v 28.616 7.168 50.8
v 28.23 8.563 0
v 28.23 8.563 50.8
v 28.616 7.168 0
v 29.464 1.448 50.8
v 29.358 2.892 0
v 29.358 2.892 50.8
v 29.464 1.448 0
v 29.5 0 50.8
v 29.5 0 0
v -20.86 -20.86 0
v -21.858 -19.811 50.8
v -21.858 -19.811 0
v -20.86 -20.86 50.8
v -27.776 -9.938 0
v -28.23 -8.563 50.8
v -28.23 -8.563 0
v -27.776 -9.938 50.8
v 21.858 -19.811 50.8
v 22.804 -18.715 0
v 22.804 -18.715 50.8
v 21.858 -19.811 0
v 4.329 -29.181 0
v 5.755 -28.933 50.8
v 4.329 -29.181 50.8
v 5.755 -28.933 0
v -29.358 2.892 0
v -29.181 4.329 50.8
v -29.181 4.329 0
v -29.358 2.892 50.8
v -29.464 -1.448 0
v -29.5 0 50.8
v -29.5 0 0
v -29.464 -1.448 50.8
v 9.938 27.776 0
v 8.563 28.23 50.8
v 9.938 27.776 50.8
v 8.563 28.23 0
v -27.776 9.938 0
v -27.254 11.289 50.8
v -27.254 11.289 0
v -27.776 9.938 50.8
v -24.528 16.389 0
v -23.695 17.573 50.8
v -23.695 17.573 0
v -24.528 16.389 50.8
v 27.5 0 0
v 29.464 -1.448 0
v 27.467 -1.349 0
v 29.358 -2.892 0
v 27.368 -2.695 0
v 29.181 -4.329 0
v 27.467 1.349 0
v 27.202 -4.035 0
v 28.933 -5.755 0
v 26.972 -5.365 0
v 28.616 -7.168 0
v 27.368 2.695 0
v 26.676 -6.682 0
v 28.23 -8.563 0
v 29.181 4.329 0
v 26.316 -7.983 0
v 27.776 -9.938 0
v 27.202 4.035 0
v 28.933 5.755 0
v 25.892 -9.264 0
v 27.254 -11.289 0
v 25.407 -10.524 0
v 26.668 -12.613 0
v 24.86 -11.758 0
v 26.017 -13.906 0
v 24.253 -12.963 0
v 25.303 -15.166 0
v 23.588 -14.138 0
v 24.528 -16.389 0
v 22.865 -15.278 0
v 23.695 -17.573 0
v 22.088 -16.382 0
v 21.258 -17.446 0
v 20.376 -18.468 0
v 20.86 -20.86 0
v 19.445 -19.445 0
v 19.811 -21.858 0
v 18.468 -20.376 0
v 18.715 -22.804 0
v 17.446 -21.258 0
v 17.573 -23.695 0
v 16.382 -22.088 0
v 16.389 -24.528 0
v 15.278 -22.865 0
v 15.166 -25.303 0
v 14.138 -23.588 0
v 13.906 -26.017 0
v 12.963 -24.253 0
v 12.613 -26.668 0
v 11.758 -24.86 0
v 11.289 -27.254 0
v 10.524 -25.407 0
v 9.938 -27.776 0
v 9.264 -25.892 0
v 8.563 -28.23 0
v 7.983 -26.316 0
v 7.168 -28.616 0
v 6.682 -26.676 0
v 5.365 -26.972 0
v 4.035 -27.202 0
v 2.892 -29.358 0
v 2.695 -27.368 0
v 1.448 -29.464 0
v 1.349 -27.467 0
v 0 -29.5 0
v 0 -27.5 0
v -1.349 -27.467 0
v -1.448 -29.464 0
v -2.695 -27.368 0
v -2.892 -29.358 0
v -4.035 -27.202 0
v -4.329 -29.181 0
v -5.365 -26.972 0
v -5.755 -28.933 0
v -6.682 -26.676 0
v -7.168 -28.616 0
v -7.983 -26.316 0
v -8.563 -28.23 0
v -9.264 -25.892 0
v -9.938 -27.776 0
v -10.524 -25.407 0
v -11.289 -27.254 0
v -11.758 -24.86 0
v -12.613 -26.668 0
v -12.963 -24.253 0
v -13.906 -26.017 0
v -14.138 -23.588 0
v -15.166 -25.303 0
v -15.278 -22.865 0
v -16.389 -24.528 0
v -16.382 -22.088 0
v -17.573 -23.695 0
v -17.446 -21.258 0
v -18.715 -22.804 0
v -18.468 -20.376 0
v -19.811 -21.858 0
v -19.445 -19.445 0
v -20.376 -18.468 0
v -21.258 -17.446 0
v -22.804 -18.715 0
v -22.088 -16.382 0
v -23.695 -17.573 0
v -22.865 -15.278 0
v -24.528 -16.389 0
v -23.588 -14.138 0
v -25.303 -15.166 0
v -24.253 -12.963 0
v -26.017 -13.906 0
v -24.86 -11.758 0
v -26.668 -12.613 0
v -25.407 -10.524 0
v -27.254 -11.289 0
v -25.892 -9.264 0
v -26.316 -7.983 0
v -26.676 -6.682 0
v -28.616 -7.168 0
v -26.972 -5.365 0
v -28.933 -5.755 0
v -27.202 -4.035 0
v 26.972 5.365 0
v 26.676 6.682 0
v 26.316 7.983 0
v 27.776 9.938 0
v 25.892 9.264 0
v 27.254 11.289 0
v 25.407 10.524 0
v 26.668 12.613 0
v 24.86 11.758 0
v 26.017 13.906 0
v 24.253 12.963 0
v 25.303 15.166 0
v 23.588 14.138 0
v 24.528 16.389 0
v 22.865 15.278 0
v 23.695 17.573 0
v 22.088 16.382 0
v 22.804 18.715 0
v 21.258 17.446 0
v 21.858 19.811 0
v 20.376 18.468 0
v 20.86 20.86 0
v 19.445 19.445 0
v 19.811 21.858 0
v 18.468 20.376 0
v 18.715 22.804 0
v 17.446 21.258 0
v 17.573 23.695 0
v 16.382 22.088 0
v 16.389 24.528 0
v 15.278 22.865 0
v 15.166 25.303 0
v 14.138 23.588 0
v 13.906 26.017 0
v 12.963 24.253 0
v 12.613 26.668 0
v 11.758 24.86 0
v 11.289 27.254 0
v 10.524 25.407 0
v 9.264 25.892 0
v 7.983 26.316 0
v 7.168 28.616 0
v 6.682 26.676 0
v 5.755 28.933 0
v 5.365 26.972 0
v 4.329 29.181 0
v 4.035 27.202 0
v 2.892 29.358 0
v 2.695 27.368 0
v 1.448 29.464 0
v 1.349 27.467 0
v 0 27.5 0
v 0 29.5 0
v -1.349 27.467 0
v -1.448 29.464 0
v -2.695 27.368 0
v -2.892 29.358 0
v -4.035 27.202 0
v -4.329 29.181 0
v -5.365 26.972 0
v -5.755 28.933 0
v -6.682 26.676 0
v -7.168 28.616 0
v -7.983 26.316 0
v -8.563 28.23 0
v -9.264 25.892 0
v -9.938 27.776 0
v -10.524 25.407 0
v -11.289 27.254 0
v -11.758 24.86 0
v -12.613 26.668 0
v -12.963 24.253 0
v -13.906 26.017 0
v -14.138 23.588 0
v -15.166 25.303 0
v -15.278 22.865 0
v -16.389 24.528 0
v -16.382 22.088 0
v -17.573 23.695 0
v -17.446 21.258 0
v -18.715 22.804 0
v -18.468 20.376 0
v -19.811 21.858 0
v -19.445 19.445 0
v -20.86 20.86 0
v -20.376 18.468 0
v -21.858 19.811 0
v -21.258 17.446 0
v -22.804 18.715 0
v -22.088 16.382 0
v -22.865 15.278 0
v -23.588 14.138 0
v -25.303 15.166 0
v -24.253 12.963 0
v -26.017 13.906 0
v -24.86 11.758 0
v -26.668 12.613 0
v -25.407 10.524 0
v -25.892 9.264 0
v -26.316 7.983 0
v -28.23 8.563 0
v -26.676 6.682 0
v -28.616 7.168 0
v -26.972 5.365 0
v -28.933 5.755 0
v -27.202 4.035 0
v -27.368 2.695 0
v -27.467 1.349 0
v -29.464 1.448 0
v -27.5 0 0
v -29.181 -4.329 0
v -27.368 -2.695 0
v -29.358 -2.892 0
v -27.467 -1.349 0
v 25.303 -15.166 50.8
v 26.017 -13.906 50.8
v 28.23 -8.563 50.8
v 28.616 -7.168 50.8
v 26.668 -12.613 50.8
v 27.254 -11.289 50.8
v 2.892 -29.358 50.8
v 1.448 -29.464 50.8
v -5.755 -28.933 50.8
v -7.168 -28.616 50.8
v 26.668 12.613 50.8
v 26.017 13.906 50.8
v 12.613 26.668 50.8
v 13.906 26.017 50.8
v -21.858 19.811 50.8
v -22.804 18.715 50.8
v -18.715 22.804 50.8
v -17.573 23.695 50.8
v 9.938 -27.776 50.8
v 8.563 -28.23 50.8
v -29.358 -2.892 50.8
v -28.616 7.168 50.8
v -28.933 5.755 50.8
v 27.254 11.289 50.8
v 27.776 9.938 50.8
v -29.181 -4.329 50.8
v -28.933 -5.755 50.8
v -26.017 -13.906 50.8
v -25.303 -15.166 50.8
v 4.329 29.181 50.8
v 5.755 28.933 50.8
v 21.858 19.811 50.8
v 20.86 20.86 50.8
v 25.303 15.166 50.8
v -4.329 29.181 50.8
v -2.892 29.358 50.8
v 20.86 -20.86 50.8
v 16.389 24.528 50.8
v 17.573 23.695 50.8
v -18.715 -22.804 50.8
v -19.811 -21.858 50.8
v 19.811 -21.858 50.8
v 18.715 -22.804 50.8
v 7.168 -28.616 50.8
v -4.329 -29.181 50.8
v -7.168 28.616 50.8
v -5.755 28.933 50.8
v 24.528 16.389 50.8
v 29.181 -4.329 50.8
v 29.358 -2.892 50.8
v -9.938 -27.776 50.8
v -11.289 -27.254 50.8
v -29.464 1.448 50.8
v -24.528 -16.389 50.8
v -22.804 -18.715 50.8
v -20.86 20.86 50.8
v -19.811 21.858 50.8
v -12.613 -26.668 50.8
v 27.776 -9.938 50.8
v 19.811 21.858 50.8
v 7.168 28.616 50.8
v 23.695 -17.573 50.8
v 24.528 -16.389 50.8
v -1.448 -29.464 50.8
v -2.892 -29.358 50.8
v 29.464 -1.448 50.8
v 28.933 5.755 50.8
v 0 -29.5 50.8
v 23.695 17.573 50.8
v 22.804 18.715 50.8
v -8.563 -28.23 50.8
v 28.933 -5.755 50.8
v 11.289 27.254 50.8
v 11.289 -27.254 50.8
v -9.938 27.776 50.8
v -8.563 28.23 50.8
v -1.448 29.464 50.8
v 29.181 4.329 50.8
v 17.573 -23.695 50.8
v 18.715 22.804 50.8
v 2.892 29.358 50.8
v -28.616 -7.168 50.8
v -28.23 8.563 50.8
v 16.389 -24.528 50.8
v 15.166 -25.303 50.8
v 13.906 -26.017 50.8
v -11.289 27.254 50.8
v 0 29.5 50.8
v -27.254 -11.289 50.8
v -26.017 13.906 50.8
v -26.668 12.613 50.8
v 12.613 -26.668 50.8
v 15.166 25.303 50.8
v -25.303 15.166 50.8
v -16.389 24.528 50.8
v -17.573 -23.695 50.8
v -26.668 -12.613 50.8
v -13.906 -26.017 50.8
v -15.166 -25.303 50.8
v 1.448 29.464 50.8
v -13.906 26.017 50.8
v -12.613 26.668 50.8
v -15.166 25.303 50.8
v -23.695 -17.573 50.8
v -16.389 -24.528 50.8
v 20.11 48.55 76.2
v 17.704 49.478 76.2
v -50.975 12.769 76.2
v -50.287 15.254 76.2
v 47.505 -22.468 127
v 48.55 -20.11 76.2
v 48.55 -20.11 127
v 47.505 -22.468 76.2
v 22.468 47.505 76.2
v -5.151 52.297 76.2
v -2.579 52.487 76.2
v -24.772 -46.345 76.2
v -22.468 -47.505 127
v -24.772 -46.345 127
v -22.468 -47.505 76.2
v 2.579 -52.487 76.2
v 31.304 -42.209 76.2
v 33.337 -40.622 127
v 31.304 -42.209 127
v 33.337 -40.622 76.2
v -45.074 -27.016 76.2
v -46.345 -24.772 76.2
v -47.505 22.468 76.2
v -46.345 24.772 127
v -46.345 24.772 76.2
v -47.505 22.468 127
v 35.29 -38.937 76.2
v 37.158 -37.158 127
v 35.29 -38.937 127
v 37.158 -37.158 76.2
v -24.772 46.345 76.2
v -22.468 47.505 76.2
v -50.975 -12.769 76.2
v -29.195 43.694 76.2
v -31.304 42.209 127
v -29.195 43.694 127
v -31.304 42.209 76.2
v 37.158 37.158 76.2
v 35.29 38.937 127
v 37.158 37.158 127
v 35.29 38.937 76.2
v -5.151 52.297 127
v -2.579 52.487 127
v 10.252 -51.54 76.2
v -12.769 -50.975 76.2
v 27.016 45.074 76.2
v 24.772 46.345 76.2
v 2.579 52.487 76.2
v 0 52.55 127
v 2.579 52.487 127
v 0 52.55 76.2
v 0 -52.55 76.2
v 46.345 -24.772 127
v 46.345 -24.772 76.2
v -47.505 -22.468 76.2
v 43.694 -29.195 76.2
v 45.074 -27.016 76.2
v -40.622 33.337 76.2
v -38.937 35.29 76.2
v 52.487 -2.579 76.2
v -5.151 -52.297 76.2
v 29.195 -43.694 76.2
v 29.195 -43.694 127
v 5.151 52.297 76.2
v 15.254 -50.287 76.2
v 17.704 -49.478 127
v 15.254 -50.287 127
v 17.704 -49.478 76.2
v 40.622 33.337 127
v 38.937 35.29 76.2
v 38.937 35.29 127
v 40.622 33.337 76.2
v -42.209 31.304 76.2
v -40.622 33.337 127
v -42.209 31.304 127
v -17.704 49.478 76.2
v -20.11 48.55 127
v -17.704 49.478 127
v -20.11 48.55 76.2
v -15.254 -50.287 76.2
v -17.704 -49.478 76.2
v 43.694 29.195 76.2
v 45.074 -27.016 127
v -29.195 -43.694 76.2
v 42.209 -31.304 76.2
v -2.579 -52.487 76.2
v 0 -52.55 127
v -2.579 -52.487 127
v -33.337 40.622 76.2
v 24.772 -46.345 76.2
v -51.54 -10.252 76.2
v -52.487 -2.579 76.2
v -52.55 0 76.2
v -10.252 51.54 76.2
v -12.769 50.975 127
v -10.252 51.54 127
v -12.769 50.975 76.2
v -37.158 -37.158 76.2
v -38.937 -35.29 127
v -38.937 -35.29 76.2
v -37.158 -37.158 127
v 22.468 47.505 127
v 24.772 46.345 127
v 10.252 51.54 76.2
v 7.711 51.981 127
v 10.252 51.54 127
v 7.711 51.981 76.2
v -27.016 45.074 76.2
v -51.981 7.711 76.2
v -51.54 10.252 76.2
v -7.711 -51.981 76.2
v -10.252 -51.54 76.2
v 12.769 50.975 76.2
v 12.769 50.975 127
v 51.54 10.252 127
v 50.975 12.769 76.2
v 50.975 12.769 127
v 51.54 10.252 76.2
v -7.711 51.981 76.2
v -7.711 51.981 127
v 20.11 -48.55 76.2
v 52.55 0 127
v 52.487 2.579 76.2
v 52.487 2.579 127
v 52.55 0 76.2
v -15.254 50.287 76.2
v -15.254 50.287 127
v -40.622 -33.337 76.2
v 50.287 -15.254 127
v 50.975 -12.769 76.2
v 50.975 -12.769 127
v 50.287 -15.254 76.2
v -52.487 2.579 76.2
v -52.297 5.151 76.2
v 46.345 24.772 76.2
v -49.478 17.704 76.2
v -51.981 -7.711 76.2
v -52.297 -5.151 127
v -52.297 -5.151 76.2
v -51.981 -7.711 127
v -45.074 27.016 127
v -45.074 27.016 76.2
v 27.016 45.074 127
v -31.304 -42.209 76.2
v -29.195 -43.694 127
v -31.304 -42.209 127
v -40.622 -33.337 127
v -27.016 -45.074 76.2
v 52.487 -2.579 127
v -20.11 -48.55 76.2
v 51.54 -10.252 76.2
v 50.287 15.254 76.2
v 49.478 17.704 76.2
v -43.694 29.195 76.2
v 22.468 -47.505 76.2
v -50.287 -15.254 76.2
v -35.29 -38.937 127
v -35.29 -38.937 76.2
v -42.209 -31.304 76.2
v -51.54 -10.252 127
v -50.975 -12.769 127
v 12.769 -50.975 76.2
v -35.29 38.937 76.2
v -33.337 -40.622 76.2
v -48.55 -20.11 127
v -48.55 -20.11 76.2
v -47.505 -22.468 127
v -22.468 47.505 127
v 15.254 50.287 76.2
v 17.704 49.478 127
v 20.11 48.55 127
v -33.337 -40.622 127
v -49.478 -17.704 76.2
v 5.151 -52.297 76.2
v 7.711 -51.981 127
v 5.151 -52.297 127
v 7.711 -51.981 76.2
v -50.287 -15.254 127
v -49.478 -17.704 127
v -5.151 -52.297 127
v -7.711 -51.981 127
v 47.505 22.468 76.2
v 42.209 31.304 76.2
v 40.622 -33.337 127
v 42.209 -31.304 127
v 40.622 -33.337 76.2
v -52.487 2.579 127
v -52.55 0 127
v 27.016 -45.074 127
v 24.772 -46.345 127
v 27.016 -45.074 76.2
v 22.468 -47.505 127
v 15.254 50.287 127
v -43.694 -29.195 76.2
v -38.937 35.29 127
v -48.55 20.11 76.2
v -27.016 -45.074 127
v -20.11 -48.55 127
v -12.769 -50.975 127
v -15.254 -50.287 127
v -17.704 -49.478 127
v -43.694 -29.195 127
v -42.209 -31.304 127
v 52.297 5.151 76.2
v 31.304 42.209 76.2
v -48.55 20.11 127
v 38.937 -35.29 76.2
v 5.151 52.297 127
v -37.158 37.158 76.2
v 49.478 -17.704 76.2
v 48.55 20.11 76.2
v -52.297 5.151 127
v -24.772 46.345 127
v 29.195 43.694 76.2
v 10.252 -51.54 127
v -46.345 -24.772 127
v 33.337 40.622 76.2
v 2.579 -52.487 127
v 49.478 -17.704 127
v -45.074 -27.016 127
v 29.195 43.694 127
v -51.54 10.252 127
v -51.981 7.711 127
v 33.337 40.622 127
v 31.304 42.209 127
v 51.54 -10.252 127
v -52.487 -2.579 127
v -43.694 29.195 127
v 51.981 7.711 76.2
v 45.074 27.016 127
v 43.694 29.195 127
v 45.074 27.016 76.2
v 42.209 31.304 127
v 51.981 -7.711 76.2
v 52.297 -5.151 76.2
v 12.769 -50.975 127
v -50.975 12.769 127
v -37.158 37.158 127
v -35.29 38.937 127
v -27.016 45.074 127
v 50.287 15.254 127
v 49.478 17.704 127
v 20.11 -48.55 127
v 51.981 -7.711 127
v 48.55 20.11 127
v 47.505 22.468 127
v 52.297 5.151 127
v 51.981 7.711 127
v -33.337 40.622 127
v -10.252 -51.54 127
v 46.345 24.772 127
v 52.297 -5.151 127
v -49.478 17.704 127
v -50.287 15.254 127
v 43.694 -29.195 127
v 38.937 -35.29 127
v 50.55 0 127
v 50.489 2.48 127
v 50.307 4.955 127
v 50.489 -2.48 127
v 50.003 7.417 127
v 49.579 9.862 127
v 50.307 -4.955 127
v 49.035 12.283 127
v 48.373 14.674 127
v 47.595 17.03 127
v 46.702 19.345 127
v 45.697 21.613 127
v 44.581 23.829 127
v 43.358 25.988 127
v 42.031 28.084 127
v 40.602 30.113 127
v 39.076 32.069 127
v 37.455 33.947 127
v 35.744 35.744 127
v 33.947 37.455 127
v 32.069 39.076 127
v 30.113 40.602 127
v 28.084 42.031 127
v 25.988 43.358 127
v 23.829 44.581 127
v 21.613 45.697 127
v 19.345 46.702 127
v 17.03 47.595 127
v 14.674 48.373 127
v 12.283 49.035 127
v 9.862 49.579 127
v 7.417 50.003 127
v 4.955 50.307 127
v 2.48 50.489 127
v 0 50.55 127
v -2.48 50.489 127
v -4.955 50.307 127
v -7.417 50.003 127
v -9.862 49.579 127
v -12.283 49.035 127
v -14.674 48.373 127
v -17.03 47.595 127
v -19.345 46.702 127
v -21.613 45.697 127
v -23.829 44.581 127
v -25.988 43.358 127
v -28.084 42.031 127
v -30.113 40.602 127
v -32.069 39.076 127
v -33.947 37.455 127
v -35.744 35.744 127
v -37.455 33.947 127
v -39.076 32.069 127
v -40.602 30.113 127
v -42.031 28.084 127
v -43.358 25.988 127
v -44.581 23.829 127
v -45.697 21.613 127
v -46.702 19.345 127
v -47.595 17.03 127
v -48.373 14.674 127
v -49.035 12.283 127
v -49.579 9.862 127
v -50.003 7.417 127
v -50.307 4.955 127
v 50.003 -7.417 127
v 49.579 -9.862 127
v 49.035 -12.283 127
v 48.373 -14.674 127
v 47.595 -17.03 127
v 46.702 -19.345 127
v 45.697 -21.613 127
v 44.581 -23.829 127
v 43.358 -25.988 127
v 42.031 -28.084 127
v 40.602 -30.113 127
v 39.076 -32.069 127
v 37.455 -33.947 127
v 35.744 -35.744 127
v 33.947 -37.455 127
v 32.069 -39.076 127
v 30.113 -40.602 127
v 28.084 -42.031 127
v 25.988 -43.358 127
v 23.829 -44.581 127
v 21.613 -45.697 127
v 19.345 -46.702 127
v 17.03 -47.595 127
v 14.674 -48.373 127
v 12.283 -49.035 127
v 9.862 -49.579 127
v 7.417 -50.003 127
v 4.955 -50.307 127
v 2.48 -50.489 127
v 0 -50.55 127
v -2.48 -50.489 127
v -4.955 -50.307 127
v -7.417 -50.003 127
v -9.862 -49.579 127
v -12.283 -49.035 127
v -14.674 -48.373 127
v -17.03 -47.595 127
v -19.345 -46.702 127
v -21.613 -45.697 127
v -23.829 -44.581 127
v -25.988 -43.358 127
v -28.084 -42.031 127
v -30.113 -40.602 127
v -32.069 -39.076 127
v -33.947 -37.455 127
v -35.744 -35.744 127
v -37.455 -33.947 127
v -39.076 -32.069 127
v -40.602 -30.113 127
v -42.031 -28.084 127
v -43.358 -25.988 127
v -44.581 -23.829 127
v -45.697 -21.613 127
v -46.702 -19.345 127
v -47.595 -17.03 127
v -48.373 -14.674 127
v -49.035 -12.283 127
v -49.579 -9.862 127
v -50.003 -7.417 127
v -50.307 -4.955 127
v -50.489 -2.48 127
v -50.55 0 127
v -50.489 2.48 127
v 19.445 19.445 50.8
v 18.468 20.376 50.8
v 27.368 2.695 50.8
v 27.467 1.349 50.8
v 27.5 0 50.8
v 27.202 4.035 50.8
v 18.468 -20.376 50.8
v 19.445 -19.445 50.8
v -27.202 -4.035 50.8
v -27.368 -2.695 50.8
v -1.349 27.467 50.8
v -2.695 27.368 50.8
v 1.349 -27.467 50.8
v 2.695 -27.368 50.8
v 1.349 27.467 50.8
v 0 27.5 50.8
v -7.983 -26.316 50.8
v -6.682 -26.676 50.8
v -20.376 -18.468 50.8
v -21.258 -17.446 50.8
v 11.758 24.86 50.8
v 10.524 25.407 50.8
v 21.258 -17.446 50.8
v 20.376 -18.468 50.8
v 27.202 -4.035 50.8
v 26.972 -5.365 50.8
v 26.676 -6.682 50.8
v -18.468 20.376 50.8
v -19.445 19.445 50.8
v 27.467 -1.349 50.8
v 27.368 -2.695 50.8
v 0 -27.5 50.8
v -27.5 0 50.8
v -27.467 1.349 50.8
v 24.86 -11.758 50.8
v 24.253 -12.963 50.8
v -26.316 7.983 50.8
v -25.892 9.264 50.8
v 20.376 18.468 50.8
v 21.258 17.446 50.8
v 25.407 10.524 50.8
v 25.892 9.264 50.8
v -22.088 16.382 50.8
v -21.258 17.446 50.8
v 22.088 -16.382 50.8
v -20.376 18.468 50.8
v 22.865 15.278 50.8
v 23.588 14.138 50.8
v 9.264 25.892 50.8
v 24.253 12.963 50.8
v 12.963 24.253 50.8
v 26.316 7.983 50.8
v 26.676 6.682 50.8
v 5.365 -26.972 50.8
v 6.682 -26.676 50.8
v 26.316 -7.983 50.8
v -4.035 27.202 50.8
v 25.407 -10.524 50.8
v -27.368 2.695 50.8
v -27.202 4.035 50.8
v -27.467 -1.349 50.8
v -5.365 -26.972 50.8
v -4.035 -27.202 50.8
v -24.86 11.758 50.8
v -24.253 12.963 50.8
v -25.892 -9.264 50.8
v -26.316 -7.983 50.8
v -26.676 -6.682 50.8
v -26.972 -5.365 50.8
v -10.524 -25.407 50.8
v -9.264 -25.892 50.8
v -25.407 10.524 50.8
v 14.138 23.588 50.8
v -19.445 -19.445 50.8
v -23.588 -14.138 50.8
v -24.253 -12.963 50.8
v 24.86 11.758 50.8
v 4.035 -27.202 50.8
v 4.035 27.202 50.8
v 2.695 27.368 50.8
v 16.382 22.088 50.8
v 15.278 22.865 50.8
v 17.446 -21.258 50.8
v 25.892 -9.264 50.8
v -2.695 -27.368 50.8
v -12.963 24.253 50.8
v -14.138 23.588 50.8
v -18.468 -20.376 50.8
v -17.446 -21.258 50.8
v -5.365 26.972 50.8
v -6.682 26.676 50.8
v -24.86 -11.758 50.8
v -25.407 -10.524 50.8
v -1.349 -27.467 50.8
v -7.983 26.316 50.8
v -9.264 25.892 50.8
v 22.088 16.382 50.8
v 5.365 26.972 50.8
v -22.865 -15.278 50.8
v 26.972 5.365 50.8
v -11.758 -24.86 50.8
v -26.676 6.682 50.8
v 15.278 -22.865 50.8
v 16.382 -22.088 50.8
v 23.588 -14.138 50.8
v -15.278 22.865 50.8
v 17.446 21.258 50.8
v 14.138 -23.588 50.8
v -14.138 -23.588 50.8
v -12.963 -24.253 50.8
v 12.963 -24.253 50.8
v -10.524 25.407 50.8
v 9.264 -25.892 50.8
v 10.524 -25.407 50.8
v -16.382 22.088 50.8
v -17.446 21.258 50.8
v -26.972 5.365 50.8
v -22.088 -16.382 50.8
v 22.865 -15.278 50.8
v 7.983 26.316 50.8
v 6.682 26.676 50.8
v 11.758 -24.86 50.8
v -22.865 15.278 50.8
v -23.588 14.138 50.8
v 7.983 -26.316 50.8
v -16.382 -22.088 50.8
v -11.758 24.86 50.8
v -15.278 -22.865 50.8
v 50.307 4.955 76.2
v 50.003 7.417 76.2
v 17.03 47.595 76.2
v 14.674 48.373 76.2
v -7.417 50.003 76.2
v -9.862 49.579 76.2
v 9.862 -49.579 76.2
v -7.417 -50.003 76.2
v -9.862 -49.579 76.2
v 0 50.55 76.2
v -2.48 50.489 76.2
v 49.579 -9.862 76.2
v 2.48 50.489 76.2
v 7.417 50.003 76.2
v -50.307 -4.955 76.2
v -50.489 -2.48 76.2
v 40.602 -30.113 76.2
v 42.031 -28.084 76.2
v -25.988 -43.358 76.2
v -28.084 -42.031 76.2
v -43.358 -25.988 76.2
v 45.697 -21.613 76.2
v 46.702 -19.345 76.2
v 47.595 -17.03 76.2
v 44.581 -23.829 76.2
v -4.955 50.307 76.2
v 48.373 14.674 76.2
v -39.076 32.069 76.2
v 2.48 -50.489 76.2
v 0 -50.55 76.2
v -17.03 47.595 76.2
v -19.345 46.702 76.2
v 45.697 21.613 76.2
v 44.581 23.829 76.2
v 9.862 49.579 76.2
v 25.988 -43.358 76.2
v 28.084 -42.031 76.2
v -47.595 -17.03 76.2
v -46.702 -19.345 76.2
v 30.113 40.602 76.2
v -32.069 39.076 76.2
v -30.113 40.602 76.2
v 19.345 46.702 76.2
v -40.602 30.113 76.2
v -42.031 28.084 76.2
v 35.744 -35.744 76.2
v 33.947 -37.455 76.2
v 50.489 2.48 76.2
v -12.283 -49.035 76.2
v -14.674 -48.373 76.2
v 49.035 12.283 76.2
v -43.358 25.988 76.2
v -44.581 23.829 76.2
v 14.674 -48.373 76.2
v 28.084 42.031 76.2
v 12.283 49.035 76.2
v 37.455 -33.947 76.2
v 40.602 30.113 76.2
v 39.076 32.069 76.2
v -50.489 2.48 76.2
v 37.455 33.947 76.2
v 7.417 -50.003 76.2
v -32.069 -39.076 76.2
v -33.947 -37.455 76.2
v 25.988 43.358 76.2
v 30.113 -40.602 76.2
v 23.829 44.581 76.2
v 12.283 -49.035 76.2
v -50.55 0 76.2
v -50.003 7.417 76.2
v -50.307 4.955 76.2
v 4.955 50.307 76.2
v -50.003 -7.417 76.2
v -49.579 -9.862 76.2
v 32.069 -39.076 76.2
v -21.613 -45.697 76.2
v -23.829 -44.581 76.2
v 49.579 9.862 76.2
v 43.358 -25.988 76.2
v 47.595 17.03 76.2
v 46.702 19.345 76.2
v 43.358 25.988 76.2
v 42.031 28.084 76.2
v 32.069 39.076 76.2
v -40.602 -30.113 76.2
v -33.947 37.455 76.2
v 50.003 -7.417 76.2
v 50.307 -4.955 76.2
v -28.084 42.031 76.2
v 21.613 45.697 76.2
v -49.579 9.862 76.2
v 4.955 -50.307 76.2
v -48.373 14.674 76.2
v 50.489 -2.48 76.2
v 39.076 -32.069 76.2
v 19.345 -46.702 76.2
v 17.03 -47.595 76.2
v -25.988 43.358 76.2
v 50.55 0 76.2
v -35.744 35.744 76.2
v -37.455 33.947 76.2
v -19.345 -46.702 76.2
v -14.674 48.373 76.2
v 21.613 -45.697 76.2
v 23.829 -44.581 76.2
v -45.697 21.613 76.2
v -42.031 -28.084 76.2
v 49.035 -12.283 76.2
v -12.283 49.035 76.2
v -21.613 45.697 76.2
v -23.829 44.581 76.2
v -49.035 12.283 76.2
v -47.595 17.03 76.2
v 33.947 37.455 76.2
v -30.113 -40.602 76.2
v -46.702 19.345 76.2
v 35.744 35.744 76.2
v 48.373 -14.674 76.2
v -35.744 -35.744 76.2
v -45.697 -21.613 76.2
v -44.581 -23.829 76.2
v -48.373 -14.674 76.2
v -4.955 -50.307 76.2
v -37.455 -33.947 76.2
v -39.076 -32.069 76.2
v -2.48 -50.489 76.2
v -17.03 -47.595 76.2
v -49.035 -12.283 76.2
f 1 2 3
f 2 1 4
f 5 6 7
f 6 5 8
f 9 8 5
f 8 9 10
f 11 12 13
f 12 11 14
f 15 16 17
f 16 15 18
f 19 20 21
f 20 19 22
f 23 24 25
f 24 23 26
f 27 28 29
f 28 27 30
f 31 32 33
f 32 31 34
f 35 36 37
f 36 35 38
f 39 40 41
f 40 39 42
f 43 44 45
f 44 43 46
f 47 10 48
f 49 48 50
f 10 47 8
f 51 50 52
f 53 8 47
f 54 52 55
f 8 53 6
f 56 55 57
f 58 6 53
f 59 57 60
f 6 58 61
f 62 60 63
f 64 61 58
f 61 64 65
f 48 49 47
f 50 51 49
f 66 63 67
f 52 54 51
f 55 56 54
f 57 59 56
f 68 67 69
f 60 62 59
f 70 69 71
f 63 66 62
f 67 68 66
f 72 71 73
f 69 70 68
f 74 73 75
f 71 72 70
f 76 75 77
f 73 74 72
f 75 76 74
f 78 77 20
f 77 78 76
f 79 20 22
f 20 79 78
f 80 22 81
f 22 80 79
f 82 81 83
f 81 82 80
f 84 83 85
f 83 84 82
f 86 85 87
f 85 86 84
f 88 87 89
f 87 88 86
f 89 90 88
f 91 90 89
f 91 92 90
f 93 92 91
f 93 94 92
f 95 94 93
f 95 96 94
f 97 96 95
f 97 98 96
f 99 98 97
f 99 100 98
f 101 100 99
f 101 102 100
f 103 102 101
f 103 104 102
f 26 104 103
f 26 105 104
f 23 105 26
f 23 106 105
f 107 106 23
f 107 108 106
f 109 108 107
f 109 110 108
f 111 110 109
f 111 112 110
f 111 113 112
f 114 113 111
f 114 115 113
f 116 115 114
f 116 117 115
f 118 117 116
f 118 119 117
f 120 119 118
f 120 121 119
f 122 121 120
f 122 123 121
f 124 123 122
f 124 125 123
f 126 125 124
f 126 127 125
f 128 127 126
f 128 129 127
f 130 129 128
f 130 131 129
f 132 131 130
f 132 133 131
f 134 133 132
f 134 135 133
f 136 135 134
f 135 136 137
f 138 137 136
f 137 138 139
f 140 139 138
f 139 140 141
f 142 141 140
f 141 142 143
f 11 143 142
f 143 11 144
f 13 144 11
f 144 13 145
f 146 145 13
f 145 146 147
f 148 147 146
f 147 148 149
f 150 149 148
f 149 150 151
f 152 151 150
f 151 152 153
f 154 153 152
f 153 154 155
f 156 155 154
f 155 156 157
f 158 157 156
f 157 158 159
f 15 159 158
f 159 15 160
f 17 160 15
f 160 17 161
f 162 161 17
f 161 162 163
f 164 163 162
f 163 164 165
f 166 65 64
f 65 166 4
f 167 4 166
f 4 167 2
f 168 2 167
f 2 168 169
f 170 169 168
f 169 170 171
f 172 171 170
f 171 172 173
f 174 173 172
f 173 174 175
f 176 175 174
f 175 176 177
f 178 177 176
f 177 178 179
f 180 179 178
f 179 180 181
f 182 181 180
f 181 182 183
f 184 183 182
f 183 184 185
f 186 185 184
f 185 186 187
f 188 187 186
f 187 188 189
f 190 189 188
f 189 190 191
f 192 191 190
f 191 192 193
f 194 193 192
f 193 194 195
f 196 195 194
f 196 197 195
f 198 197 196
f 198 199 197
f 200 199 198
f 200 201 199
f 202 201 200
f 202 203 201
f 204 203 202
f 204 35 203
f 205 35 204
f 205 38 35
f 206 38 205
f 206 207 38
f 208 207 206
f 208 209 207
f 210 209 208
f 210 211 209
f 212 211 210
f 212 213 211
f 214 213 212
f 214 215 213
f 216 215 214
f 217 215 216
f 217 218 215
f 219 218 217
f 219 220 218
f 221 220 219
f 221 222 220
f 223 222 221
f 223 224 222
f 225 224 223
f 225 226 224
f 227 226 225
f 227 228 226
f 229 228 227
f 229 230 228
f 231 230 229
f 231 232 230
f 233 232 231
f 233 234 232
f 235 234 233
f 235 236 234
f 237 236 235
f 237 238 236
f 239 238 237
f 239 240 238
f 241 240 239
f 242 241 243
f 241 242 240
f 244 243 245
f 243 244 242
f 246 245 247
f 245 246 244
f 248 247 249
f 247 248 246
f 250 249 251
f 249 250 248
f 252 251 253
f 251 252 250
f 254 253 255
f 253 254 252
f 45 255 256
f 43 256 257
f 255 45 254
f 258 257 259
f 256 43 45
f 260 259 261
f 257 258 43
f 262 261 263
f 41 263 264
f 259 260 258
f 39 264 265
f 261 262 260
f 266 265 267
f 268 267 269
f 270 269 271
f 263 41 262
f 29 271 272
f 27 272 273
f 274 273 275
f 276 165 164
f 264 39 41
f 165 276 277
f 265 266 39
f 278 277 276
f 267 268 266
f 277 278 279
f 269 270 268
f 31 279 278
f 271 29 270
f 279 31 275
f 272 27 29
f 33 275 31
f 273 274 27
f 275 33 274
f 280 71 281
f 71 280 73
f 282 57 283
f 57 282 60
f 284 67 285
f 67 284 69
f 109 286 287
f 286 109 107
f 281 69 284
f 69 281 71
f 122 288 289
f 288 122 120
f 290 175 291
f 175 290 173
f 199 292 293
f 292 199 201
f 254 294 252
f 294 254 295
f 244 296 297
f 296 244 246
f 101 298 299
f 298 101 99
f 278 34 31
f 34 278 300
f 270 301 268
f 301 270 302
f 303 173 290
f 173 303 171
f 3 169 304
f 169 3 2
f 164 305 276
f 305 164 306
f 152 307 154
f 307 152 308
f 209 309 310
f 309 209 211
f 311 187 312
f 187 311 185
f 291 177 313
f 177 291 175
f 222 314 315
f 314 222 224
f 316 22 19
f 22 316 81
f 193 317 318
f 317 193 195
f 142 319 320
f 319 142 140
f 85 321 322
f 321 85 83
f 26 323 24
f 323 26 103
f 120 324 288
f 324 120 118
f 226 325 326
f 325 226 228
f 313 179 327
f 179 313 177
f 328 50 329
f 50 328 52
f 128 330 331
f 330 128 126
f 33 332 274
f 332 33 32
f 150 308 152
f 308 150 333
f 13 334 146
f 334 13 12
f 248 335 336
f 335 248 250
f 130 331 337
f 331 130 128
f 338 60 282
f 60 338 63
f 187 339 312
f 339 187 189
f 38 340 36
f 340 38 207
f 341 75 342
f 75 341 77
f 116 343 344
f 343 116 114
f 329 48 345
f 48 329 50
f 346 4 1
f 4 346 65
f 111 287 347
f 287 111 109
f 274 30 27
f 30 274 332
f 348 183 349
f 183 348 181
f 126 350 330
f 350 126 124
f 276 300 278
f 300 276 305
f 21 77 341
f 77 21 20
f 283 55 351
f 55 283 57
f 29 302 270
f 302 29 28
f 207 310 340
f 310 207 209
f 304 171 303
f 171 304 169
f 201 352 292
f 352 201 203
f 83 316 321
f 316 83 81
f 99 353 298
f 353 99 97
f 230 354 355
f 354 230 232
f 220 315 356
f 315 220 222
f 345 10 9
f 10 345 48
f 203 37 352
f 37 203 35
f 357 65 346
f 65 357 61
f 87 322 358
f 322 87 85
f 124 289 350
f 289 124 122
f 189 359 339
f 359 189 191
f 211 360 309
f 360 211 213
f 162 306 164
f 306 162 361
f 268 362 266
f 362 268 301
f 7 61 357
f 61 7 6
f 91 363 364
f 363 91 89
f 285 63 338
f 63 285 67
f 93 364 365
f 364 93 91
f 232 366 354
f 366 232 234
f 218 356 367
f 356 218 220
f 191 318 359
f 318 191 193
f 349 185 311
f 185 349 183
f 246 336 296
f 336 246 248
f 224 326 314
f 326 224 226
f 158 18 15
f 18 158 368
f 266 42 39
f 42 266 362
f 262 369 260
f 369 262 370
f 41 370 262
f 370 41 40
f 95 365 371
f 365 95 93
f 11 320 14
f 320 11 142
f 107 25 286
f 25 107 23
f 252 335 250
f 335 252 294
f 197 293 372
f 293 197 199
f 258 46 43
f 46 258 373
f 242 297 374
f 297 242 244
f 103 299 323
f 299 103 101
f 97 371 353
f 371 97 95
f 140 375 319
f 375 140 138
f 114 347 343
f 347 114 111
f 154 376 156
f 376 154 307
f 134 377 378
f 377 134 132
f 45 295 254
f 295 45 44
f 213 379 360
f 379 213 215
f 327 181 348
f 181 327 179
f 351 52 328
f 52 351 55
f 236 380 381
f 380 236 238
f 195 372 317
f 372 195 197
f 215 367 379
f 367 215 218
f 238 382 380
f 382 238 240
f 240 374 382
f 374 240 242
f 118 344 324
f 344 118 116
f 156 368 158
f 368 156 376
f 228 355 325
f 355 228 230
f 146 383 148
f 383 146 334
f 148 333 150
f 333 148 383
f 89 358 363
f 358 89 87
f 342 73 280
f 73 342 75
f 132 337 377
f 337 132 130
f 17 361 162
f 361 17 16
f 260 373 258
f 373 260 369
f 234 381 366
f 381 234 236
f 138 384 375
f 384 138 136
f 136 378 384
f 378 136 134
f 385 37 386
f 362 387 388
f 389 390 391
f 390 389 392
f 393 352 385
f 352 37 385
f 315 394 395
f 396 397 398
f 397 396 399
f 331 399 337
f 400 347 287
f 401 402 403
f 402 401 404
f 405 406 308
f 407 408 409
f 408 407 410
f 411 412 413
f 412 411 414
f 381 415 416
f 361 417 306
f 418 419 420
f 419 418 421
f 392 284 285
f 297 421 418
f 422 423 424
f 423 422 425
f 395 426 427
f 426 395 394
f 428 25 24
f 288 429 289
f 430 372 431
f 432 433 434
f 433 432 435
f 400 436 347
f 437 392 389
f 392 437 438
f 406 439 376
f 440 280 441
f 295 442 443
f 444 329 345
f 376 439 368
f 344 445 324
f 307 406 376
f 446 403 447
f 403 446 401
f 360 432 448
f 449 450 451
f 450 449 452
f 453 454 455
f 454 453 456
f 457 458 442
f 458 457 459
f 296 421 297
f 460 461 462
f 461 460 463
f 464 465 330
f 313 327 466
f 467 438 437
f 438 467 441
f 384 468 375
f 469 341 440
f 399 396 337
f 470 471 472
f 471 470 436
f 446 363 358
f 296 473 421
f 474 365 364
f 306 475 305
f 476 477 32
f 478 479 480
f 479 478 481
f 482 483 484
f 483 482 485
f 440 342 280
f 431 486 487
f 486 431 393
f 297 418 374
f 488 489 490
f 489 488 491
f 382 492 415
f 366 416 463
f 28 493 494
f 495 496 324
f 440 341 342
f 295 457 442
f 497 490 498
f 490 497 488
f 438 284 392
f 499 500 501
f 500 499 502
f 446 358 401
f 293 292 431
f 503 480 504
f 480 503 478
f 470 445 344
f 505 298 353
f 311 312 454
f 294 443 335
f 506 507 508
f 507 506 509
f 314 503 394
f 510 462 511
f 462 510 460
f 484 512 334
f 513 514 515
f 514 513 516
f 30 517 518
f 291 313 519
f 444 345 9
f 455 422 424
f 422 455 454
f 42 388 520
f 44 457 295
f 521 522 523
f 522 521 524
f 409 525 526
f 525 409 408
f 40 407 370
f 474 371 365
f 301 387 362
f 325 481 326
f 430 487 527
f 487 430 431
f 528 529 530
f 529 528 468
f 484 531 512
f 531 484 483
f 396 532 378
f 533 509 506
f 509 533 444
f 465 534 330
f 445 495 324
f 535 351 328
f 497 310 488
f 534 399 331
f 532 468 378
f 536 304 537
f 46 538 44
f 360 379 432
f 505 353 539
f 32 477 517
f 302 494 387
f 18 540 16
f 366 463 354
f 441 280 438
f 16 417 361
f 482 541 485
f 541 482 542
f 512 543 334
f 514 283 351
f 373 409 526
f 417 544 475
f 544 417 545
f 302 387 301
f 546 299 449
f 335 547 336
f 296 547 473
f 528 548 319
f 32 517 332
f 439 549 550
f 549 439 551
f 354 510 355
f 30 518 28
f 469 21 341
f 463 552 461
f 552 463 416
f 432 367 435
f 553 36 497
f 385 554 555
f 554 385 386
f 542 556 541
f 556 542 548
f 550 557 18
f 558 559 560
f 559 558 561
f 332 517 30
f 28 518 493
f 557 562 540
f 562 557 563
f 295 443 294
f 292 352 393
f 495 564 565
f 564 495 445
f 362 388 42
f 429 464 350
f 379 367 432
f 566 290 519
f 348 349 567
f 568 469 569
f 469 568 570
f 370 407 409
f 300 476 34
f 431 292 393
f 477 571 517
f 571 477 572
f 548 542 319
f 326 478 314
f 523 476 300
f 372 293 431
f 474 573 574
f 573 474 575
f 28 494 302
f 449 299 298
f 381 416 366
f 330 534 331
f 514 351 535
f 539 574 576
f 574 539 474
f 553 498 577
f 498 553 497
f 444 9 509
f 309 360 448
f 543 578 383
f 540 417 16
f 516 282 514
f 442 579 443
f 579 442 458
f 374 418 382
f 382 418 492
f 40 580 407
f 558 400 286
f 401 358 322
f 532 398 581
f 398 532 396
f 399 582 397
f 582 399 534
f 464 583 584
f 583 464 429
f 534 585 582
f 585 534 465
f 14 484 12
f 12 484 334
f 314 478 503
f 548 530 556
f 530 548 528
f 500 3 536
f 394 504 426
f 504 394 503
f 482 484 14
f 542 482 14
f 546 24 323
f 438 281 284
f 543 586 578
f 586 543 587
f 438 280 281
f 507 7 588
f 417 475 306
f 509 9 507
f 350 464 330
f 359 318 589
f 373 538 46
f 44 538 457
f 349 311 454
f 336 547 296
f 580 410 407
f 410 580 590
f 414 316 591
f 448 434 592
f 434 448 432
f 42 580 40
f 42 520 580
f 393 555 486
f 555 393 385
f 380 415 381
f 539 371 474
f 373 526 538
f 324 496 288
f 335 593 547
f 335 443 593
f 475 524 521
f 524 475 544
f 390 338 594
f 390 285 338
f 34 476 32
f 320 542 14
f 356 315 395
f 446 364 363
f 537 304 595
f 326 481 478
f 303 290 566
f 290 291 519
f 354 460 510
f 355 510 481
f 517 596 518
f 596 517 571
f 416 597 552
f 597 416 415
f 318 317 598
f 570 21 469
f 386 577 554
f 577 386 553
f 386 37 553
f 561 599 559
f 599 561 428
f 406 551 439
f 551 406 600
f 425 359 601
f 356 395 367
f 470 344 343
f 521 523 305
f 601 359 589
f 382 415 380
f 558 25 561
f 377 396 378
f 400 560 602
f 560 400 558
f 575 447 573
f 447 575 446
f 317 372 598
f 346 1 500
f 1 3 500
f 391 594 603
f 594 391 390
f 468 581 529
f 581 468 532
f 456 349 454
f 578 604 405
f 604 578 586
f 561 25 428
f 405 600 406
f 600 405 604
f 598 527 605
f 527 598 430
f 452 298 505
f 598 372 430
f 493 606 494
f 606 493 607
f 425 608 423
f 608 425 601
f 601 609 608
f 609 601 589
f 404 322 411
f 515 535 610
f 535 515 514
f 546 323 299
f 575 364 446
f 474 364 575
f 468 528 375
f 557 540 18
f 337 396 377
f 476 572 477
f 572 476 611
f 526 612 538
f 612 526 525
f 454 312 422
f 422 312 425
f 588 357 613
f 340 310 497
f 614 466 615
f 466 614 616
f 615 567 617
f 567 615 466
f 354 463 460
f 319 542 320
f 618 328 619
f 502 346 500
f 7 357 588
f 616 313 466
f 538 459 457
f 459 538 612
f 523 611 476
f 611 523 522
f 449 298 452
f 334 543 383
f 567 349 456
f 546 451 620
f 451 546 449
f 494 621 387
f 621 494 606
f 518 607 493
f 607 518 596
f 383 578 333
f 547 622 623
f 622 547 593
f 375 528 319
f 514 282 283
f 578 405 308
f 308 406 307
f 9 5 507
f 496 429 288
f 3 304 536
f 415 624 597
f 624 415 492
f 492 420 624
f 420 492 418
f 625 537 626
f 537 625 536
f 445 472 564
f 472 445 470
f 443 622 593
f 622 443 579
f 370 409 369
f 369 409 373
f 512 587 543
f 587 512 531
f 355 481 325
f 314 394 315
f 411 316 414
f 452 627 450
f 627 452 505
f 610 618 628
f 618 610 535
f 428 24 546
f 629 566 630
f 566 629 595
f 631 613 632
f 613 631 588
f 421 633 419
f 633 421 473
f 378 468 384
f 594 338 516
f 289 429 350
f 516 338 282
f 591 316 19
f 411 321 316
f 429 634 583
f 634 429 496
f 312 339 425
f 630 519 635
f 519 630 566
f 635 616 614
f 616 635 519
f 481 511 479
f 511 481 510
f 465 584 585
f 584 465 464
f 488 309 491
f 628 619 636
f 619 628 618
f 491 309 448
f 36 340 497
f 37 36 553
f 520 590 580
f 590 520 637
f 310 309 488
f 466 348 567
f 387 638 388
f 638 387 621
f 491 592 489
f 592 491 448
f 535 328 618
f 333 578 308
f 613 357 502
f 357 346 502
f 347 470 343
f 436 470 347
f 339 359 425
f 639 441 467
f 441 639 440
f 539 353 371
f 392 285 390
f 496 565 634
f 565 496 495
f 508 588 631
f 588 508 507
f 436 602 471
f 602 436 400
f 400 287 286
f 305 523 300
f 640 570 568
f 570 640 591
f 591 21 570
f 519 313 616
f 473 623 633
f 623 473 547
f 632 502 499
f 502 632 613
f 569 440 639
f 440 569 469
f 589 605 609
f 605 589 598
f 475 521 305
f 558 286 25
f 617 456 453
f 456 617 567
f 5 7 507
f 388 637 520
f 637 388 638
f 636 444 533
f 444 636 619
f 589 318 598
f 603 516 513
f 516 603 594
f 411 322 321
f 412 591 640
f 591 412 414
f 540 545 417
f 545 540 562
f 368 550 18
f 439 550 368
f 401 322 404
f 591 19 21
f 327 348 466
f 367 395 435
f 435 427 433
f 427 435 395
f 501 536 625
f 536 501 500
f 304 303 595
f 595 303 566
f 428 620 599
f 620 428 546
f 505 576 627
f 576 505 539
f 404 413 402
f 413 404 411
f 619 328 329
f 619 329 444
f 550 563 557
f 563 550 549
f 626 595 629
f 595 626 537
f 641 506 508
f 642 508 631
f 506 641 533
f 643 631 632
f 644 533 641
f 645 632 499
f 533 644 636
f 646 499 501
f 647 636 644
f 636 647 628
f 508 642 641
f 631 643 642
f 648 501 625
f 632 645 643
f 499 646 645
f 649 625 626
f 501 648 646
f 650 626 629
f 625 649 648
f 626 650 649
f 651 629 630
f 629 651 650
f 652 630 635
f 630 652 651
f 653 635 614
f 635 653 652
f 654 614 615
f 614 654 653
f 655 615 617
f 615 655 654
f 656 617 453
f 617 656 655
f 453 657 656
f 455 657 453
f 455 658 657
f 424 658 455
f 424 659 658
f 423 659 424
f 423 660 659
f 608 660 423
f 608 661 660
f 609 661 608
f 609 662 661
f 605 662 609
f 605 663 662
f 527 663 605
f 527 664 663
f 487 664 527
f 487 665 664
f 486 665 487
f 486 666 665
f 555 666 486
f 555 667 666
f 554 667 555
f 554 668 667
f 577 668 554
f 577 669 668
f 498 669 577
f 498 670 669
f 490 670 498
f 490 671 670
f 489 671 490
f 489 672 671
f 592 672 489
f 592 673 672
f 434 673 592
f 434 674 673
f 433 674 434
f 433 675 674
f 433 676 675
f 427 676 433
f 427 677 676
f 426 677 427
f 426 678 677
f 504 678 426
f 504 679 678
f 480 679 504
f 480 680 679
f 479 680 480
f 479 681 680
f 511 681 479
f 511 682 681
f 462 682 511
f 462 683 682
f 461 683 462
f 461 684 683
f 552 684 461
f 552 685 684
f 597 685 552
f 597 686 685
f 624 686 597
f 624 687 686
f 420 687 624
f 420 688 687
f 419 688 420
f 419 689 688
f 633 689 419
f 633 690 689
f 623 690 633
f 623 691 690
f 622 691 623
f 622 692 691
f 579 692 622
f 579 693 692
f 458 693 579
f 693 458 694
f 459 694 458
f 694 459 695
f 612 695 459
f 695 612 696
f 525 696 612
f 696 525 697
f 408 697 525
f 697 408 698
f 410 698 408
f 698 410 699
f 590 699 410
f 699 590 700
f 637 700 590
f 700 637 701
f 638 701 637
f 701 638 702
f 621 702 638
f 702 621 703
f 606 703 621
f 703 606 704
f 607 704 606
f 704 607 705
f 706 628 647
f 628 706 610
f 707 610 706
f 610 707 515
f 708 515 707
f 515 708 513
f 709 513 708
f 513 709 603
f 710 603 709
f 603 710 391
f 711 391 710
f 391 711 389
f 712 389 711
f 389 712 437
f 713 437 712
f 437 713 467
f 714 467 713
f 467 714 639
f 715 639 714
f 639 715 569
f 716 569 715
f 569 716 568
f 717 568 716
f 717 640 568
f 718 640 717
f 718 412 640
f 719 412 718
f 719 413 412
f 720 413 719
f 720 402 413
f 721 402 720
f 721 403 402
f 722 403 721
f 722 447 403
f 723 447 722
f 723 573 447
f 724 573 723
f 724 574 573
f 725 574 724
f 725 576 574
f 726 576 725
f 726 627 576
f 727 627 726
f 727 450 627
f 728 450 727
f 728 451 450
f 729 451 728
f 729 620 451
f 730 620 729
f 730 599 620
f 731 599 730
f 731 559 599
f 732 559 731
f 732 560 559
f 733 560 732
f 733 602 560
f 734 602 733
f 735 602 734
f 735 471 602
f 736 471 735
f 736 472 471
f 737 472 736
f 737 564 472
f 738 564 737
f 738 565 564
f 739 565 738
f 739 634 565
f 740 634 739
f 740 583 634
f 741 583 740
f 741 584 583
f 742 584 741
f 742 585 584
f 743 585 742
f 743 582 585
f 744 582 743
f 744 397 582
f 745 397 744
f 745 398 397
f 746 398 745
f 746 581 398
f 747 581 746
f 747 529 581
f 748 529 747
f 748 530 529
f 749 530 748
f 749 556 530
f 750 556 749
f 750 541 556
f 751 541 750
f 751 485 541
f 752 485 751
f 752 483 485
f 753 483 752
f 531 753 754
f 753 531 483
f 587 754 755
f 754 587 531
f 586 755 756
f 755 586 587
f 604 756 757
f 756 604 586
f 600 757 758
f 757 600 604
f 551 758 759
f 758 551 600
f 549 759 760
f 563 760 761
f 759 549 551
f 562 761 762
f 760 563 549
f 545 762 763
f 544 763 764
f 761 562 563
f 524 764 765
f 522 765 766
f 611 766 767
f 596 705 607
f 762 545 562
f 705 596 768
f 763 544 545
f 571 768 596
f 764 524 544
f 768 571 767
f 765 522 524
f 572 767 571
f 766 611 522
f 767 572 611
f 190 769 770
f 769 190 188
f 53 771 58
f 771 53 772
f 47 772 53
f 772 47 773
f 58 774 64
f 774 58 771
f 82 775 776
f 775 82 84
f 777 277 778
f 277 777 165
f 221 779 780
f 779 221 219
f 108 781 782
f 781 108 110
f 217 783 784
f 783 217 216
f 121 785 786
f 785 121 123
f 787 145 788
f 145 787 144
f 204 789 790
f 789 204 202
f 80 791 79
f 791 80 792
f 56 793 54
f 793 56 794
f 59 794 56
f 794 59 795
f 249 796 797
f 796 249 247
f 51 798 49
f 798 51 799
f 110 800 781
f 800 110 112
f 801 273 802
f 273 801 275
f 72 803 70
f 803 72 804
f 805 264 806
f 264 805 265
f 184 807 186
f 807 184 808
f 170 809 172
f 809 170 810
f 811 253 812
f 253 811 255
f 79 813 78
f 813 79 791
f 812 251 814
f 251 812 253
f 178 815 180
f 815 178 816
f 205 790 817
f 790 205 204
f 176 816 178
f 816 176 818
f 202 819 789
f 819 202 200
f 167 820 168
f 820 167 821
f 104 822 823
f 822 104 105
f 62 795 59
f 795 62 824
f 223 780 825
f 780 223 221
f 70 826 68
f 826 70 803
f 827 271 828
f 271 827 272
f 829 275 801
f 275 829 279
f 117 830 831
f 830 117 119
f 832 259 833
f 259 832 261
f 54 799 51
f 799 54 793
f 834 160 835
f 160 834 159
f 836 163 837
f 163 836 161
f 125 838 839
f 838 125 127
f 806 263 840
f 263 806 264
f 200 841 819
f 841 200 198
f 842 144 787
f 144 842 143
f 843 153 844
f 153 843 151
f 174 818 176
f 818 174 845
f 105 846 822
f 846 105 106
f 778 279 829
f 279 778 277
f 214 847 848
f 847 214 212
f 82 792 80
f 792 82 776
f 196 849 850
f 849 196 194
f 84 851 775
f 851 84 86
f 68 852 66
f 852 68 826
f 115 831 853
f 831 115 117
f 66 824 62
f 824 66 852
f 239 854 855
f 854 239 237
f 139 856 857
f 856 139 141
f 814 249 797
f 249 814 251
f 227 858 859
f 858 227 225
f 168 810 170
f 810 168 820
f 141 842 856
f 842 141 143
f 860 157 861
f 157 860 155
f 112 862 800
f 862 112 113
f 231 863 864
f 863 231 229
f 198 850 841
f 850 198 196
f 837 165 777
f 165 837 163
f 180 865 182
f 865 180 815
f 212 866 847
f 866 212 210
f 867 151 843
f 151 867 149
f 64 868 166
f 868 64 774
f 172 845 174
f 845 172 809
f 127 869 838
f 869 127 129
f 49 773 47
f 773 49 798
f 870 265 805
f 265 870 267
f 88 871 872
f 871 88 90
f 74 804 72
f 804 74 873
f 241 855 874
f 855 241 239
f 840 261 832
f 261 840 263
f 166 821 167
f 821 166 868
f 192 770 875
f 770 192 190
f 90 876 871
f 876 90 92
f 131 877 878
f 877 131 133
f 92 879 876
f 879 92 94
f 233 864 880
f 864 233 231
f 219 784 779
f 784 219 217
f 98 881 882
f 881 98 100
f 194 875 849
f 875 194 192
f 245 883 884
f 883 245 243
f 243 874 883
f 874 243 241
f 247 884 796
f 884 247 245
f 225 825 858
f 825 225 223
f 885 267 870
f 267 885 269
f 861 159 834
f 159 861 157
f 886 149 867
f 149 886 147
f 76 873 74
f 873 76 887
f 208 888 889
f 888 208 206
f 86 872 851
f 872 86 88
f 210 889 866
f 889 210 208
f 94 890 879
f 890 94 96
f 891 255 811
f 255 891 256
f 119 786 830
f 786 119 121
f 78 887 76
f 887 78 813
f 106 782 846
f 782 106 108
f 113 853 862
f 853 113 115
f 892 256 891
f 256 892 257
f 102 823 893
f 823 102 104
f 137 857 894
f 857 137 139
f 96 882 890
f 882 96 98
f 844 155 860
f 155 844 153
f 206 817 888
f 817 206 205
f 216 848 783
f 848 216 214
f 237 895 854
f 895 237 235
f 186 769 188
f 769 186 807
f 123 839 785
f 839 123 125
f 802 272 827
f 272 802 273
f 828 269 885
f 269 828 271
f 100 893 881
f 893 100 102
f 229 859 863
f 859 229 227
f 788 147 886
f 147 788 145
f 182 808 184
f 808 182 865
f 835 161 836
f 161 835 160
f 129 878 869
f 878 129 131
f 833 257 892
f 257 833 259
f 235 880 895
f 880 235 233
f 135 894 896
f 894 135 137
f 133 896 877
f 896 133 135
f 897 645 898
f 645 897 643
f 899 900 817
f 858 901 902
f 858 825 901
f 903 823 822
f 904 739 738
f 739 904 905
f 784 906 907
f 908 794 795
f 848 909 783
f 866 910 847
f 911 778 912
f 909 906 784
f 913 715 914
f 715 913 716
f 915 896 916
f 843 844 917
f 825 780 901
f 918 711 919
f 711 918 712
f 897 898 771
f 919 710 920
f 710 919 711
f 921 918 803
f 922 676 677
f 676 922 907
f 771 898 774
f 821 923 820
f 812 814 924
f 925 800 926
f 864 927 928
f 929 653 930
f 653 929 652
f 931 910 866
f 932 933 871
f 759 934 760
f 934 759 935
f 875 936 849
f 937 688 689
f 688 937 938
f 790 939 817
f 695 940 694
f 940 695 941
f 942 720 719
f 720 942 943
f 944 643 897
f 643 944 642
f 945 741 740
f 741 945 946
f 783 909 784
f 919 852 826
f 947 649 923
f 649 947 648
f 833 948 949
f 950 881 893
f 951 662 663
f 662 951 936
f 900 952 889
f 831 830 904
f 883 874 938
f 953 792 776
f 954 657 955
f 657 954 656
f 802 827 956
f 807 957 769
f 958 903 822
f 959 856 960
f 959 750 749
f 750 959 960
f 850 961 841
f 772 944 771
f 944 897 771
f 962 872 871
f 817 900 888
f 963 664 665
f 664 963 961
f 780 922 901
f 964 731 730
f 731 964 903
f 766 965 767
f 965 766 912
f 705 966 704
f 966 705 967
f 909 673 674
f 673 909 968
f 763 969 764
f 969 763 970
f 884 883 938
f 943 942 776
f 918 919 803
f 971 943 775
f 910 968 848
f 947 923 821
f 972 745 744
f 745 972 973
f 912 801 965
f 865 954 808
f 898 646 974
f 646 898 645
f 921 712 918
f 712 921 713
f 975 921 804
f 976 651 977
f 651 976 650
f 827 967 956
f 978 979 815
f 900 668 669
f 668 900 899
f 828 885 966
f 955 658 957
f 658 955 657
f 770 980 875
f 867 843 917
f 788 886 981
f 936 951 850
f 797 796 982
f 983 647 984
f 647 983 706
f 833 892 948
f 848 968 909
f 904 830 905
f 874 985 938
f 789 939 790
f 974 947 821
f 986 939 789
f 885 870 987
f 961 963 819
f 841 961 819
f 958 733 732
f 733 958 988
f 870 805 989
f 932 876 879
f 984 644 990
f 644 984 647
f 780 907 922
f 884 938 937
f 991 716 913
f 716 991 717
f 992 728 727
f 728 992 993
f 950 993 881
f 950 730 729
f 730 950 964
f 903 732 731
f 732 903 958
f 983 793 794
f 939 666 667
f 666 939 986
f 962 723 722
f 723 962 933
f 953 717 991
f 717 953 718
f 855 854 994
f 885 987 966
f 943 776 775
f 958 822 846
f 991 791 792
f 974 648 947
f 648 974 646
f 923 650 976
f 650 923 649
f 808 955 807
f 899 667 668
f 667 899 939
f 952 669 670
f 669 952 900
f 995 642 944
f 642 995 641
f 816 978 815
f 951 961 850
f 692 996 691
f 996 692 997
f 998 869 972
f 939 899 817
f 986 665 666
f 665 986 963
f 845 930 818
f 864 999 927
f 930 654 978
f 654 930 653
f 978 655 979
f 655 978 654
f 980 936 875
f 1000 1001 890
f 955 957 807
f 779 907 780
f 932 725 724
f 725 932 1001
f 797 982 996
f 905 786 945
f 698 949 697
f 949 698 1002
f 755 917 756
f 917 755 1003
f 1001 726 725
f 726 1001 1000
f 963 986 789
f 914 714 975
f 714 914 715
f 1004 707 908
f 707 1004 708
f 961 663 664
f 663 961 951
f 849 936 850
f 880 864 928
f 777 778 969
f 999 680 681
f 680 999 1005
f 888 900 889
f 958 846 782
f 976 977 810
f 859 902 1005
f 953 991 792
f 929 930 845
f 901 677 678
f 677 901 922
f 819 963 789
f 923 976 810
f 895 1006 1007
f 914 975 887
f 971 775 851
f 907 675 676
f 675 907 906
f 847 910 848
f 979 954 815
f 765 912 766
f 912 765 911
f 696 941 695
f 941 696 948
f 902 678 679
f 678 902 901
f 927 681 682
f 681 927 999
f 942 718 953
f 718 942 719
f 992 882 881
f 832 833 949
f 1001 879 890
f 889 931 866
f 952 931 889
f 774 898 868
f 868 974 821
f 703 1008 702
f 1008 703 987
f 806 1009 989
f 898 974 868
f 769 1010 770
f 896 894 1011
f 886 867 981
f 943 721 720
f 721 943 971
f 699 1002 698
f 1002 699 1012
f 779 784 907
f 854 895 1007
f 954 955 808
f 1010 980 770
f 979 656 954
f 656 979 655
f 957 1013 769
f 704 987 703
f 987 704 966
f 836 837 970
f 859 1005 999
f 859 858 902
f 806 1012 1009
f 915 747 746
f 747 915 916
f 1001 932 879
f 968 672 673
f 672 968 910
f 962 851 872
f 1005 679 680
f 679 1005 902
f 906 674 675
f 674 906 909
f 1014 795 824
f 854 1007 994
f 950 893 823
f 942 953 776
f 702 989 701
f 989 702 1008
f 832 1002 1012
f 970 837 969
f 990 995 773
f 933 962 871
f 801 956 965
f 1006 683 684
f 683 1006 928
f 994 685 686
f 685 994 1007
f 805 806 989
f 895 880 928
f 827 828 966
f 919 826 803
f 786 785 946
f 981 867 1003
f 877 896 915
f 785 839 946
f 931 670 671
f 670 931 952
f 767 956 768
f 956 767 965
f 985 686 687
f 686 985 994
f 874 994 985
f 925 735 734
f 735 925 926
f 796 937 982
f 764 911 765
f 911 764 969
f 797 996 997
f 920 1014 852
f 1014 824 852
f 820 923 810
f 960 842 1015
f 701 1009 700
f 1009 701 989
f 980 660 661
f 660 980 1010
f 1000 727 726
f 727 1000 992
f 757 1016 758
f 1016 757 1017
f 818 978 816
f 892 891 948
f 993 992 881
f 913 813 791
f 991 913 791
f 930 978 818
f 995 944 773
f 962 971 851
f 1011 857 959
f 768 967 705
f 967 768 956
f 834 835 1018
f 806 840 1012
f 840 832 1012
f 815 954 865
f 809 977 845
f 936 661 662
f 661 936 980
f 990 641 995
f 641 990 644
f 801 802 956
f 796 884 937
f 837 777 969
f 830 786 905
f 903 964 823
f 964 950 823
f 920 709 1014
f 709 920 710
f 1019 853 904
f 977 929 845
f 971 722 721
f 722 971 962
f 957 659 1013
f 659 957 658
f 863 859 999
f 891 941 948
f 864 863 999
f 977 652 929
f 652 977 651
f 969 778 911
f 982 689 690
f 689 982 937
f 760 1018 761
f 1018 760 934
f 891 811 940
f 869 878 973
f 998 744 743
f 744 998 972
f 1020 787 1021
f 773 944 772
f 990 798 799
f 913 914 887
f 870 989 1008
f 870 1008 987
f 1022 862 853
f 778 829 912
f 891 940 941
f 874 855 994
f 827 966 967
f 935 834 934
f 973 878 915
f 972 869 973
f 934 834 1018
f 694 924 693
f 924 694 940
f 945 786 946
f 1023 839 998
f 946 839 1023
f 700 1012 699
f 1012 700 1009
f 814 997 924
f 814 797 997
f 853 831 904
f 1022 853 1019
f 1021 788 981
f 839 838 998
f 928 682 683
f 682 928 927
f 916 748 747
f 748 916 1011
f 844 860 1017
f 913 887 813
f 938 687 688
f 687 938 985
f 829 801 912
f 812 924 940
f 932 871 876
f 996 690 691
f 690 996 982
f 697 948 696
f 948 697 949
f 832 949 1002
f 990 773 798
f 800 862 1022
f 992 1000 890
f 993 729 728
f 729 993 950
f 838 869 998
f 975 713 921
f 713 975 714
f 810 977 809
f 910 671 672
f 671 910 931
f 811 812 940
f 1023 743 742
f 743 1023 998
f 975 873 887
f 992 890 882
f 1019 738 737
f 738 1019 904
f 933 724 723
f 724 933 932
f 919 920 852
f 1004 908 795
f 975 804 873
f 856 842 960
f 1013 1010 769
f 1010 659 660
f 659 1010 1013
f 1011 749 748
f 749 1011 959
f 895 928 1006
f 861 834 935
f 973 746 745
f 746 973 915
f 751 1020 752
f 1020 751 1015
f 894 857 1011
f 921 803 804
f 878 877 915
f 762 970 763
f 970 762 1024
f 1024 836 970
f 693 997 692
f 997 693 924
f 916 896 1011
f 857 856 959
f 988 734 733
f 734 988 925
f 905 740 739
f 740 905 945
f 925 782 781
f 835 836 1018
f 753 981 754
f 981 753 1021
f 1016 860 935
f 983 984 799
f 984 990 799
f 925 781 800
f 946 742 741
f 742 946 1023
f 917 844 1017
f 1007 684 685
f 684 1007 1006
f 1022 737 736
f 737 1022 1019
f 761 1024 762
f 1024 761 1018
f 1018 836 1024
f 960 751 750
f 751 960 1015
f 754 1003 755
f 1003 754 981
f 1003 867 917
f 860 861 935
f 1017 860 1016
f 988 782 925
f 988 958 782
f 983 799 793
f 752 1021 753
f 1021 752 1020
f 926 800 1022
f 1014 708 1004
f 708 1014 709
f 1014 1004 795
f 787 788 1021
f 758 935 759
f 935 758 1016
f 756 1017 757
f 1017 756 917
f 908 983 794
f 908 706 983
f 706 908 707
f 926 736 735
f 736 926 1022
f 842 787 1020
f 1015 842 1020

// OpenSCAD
// Tapered dust collection adapter
// Side 1: 55.0mm inner / 59.0mm outer
// Side 2: 101.1mm inner / 105.1mm outer

side1_inner = 55.0;
side1_outer = 59.0;
side2_inner = 101.1;
side2_outer = 105.1;

side1_length = 50.8;  // 2 inches
transition_length = 25.4;  // 1 inch
side2_length = 50.8;  // 2 inches
total_length = 126.99999999999999;  // 5 inches total

module tapered_adapter() {
    difference() {
        // Outer shape - three distinct sections
        union() {
            // Side 1: constant diameter for 2 inches
            translate([0, 0, 0])
            cylinder(h=side1_length, r=side1_outer/2, $fn=128);
            
            // Transition: tapered section for 1 inch
            translate([0, 0, side1_length])
            hull() {
                cylinder(h=0.1, r=side1_outer/2, $fn=128);
                translate([0, 0, transition_length])
                cylinder(h=0.1, r=side2_outer/2, $fn=128);
            }
            
            // Side 2: constant diameter for 2 inches
            translate([0, 0, side1_length + transition_length])
            cylinder(h=side2_length, r=side2_outer/2, $fn=128);
        }
        
        // Inner cavity - three distinct sections
        union() {
            // Side 1 inner: constant diameter, slightly longer to ensure clean cut
            translate([0, 0, -0.5])
            cylinder(h=side1_length + 0.5, r=side1_inner/2, $fn=128);
            
            // Transition inner: tapered section
            translate([0, 0, side1_length])
            hull() {
                cylinder(h=0.1, r=side1_inner/2, $fn=128);
                translate([0, 0, transition_length])
                cylinder(h=0.1, r=side2_inner/2, $fn=128);
            }
            
            // Side 2 inner: constant diameter, slightly longer to ensure clean cut
            translate([0, 0, side1_length + transition_length])
            cylinder(h=side2_length + 0.5, r=side2_inner/2, $fn=128);
        }
    }
}

tapered_adapter();
